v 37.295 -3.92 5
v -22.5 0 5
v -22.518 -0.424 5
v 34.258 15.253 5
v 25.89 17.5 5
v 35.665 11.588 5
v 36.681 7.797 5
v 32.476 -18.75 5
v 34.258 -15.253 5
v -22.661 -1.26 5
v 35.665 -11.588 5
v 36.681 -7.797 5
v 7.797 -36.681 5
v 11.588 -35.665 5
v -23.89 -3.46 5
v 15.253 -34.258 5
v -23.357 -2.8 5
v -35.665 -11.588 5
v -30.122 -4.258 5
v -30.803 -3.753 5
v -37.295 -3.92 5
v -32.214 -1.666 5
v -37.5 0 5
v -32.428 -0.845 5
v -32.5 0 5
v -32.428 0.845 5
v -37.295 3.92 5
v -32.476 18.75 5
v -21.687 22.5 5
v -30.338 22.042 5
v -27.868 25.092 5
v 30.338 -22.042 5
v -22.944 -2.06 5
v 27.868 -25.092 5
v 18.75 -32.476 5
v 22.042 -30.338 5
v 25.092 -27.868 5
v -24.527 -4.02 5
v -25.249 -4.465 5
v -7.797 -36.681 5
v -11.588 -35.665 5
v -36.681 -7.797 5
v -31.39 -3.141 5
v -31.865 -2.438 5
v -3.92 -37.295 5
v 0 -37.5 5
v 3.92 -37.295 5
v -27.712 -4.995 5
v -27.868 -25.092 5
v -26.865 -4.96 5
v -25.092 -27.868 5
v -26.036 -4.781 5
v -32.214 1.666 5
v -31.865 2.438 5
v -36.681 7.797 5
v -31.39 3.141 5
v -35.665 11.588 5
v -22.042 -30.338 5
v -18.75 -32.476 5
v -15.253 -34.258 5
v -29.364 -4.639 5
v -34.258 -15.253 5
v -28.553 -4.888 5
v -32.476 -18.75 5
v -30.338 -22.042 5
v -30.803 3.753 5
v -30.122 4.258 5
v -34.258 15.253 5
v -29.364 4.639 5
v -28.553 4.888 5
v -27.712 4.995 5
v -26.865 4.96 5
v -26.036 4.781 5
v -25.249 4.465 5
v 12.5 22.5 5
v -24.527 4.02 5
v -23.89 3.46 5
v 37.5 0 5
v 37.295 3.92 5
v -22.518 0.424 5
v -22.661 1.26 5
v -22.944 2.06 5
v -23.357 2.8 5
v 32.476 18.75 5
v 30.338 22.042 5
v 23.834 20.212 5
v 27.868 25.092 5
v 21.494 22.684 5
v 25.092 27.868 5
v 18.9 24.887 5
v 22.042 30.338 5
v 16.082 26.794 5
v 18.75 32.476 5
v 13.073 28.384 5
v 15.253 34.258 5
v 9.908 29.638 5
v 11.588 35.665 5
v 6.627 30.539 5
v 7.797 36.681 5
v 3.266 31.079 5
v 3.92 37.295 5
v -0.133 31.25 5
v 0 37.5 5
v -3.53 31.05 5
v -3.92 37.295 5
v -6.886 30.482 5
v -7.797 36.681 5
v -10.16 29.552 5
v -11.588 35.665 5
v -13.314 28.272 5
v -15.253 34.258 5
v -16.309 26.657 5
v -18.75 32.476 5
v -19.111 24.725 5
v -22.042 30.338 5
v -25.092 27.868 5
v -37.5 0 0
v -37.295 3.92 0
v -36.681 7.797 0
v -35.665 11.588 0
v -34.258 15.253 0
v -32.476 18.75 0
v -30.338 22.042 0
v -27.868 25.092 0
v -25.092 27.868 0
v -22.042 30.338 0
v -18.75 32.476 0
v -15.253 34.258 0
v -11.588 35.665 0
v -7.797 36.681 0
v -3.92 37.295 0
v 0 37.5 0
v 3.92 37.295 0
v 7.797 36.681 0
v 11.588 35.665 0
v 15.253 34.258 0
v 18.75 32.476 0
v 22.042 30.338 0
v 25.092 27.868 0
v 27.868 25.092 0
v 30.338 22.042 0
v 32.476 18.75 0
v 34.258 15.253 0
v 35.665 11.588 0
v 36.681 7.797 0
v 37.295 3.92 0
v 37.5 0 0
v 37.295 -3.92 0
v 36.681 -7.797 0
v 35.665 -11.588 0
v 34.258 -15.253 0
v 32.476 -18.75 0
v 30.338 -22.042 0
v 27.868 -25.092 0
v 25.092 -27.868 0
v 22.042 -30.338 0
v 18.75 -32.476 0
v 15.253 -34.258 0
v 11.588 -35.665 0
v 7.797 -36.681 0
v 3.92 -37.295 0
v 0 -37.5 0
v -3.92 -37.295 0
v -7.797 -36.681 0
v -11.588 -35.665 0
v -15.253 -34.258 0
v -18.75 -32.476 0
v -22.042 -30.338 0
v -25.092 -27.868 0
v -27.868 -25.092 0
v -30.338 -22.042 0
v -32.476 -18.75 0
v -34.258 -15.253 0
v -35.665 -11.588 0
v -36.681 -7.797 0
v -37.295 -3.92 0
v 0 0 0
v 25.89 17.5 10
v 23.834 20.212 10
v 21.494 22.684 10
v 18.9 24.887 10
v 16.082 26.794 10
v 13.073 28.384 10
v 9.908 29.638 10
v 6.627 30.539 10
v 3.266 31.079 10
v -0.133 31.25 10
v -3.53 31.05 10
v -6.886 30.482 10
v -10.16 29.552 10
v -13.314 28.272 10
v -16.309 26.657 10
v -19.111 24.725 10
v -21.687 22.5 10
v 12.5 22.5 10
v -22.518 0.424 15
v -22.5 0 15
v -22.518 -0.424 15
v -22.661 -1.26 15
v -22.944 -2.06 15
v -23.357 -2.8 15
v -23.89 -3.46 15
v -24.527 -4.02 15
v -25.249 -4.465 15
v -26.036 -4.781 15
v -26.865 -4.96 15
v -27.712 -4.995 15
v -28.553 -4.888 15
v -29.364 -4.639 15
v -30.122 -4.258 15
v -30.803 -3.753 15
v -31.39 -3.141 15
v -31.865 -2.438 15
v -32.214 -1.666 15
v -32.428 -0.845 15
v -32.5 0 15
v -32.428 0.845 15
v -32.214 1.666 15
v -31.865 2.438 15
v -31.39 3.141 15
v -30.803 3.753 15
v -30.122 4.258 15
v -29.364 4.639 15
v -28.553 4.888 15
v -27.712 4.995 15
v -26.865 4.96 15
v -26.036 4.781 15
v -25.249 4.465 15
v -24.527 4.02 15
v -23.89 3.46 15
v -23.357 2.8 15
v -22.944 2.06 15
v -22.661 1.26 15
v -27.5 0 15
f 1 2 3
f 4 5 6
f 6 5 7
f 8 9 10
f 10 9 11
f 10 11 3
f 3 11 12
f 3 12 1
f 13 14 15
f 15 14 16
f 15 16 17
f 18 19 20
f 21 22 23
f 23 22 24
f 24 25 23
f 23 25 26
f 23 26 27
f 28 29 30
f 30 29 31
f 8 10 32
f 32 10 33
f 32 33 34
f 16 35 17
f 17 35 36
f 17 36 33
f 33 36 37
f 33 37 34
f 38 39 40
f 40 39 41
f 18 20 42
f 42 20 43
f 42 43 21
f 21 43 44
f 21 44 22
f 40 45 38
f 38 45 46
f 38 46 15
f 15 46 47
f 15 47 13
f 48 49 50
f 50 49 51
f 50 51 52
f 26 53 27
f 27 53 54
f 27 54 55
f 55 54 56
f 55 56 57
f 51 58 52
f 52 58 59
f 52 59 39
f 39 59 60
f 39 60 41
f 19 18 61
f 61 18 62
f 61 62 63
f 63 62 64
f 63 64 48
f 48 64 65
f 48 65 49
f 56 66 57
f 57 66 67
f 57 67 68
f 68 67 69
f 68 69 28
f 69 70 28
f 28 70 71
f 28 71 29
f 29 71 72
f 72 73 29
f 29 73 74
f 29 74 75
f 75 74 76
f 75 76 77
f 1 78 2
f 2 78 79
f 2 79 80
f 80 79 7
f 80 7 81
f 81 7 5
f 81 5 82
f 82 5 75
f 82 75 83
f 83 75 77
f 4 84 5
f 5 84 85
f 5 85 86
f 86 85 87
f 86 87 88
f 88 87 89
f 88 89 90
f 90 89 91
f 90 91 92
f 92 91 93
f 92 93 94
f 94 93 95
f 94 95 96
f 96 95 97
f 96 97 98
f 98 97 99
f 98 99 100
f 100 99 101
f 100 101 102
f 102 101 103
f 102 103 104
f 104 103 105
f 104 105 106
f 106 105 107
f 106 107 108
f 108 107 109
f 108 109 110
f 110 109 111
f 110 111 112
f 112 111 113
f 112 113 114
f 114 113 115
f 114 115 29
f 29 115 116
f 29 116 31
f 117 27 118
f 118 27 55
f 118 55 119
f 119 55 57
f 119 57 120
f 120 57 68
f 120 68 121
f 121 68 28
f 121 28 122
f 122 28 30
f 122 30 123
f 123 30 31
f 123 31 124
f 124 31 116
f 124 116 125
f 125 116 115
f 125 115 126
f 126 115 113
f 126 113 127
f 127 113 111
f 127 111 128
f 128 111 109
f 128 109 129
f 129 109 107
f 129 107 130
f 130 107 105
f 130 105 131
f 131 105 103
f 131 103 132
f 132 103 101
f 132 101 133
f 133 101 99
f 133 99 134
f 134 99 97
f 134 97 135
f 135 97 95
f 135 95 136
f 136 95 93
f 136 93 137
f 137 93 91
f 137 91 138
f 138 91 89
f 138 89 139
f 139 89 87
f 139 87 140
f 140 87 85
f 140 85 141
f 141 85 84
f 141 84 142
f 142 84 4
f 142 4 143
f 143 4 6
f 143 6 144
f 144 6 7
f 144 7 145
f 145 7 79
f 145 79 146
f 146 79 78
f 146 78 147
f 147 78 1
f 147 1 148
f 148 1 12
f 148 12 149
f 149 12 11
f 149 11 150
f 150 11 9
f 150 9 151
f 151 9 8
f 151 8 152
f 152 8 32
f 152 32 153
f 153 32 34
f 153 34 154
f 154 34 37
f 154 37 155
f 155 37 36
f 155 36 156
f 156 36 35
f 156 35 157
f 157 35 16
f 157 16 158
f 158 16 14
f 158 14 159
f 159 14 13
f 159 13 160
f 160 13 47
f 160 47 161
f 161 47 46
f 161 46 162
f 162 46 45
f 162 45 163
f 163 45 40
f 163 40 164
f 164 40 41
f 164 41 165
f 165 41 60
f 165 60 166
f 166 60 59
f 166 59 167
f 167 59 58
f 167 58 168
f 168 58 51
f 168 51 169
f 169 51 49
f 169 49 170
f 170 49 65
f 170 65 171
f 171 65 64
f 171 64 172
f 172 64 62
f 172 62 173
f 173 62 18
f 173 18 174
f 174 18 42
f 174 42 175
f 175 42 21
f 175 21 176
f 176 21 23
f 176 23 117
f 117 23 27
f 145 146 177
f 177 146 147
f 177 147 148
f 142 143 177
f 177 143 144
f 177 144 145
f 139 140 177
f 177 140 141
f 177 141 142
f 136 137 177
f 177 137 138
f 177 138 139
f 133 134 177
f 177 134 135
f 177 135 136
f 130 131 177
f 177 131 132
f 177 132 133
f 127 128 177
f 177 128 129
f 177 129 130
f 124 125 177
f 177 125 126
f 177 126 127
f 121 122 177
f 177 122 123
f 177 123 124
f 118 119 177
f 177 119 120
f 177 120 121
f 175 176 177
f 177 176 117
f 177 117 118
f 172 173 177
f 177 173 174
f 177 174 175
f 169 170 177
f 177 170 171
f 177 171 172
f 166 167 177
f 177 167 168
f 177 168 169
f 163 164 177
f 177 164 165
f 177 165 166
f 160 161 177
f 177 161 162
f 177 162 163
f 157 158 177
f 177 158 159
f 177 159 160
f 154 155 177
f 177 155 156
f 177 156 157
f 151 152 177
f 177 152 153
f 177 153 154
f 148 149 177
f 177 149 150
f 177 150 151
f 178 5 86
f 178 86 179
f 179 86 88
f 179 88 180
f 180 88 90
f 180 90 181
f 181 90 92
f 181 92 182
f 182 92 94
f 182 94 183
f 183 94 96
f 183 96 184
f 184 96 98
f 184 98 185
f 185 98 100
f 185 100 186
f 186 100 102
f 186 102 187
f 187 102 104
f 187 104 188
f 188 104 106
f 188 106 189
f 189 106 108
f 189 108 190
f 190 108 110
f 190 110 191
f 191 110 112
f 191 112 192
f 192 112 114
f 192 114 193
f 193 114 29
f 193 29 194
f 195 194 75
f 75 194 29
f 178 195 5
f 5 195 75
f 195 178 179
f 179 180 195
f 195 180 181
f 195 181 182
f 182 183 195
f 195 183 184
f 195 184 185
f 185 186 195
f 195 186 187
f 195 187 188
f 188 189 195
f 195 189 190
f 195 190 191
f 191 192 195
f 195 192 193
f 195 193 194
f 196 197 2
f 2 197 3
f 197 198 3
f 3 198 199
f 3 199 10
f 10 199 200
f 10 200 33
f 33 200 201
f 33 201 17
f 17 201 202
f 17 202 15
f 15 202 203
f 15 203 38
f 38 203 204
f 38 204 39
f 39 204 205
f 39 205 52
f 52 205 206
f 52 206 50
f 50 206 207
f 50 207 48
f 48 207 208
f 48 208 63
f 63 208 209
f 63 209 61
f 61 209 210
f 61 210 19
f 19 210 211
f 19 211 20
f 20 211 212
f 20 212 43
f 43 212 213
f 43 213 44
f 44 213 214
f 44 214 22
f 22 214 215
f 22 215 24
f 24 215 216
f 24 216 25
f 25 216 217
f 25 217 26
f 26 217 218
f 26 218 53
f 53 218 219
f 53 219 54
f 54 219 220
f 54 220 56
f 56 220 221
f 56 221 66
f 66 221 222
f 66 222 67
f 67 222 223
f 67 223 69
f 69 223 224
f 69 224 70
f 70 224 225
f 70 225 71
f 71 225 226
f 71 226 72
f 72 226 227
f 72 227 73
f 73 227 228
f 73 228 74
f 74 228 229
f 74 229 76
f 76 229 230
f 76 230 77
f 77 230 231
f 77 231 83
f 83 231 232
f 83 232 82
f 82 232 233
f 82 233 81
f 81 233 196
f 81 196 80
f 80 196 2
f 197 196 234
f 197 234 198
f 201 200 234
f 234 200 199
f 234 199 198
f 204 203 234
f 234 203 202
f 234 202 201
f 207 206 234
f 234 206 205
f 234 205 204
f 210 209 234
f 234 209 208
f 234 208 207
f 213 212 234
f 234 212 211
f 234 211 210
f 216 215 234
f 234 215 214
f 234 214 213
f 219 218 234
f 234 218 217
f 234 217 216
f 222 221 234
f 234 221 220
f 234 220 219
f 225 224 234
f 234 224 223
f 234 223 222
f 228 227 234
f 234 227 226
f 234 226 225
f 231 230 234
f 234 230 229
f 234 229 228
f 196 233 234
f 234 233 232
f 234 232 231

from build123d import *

# Parameters (mm, degrees)
SKETCH1_R           = 37.5
BOSS_EXTRUDE1_DEPTH = 5
BOSS_EXTRUDE2_DEPTH = 5
SKETCH4_R           = 5
BOSS_EXTRUDE3_DEPTH = 10


with BuildPart() as part:
    # Sketch1 → Boss-Extrude1 (new body)
    with BuildSketch(Plane.XY):
        Circle(SKETCH1_R)
    extrude(amount=BOSS_EXTRUDE1_DEPTH)

    # Sketch3 → Boss-Extrude2 (add)
    with BuildSketch(Plane.XY.offset(5)):
        with BuildLine():
            Line((25.890393972, 17.5), (12.5, 22.5))
            Line((12.5, 22.5), (-21.686689466, 22.5))
            ThreePointArc((-21.686689466, 22.5), (3.266157206, 31.078846779), (25.890393972, 17.5))
        make_face()
    extrude(amount=BOSS_EXTRUDE2_DEPTH)

    # Sketch4 → Boss-Extrude3 (add)
    with BuildSketch(Plane.XY.offset(5)):
        with Locations((-27.5, 0)):
            Circle(SKETCH4_R)
    extrude(amount=BOSS_EXTRUDE3_DEPTH)


solid = part.part
